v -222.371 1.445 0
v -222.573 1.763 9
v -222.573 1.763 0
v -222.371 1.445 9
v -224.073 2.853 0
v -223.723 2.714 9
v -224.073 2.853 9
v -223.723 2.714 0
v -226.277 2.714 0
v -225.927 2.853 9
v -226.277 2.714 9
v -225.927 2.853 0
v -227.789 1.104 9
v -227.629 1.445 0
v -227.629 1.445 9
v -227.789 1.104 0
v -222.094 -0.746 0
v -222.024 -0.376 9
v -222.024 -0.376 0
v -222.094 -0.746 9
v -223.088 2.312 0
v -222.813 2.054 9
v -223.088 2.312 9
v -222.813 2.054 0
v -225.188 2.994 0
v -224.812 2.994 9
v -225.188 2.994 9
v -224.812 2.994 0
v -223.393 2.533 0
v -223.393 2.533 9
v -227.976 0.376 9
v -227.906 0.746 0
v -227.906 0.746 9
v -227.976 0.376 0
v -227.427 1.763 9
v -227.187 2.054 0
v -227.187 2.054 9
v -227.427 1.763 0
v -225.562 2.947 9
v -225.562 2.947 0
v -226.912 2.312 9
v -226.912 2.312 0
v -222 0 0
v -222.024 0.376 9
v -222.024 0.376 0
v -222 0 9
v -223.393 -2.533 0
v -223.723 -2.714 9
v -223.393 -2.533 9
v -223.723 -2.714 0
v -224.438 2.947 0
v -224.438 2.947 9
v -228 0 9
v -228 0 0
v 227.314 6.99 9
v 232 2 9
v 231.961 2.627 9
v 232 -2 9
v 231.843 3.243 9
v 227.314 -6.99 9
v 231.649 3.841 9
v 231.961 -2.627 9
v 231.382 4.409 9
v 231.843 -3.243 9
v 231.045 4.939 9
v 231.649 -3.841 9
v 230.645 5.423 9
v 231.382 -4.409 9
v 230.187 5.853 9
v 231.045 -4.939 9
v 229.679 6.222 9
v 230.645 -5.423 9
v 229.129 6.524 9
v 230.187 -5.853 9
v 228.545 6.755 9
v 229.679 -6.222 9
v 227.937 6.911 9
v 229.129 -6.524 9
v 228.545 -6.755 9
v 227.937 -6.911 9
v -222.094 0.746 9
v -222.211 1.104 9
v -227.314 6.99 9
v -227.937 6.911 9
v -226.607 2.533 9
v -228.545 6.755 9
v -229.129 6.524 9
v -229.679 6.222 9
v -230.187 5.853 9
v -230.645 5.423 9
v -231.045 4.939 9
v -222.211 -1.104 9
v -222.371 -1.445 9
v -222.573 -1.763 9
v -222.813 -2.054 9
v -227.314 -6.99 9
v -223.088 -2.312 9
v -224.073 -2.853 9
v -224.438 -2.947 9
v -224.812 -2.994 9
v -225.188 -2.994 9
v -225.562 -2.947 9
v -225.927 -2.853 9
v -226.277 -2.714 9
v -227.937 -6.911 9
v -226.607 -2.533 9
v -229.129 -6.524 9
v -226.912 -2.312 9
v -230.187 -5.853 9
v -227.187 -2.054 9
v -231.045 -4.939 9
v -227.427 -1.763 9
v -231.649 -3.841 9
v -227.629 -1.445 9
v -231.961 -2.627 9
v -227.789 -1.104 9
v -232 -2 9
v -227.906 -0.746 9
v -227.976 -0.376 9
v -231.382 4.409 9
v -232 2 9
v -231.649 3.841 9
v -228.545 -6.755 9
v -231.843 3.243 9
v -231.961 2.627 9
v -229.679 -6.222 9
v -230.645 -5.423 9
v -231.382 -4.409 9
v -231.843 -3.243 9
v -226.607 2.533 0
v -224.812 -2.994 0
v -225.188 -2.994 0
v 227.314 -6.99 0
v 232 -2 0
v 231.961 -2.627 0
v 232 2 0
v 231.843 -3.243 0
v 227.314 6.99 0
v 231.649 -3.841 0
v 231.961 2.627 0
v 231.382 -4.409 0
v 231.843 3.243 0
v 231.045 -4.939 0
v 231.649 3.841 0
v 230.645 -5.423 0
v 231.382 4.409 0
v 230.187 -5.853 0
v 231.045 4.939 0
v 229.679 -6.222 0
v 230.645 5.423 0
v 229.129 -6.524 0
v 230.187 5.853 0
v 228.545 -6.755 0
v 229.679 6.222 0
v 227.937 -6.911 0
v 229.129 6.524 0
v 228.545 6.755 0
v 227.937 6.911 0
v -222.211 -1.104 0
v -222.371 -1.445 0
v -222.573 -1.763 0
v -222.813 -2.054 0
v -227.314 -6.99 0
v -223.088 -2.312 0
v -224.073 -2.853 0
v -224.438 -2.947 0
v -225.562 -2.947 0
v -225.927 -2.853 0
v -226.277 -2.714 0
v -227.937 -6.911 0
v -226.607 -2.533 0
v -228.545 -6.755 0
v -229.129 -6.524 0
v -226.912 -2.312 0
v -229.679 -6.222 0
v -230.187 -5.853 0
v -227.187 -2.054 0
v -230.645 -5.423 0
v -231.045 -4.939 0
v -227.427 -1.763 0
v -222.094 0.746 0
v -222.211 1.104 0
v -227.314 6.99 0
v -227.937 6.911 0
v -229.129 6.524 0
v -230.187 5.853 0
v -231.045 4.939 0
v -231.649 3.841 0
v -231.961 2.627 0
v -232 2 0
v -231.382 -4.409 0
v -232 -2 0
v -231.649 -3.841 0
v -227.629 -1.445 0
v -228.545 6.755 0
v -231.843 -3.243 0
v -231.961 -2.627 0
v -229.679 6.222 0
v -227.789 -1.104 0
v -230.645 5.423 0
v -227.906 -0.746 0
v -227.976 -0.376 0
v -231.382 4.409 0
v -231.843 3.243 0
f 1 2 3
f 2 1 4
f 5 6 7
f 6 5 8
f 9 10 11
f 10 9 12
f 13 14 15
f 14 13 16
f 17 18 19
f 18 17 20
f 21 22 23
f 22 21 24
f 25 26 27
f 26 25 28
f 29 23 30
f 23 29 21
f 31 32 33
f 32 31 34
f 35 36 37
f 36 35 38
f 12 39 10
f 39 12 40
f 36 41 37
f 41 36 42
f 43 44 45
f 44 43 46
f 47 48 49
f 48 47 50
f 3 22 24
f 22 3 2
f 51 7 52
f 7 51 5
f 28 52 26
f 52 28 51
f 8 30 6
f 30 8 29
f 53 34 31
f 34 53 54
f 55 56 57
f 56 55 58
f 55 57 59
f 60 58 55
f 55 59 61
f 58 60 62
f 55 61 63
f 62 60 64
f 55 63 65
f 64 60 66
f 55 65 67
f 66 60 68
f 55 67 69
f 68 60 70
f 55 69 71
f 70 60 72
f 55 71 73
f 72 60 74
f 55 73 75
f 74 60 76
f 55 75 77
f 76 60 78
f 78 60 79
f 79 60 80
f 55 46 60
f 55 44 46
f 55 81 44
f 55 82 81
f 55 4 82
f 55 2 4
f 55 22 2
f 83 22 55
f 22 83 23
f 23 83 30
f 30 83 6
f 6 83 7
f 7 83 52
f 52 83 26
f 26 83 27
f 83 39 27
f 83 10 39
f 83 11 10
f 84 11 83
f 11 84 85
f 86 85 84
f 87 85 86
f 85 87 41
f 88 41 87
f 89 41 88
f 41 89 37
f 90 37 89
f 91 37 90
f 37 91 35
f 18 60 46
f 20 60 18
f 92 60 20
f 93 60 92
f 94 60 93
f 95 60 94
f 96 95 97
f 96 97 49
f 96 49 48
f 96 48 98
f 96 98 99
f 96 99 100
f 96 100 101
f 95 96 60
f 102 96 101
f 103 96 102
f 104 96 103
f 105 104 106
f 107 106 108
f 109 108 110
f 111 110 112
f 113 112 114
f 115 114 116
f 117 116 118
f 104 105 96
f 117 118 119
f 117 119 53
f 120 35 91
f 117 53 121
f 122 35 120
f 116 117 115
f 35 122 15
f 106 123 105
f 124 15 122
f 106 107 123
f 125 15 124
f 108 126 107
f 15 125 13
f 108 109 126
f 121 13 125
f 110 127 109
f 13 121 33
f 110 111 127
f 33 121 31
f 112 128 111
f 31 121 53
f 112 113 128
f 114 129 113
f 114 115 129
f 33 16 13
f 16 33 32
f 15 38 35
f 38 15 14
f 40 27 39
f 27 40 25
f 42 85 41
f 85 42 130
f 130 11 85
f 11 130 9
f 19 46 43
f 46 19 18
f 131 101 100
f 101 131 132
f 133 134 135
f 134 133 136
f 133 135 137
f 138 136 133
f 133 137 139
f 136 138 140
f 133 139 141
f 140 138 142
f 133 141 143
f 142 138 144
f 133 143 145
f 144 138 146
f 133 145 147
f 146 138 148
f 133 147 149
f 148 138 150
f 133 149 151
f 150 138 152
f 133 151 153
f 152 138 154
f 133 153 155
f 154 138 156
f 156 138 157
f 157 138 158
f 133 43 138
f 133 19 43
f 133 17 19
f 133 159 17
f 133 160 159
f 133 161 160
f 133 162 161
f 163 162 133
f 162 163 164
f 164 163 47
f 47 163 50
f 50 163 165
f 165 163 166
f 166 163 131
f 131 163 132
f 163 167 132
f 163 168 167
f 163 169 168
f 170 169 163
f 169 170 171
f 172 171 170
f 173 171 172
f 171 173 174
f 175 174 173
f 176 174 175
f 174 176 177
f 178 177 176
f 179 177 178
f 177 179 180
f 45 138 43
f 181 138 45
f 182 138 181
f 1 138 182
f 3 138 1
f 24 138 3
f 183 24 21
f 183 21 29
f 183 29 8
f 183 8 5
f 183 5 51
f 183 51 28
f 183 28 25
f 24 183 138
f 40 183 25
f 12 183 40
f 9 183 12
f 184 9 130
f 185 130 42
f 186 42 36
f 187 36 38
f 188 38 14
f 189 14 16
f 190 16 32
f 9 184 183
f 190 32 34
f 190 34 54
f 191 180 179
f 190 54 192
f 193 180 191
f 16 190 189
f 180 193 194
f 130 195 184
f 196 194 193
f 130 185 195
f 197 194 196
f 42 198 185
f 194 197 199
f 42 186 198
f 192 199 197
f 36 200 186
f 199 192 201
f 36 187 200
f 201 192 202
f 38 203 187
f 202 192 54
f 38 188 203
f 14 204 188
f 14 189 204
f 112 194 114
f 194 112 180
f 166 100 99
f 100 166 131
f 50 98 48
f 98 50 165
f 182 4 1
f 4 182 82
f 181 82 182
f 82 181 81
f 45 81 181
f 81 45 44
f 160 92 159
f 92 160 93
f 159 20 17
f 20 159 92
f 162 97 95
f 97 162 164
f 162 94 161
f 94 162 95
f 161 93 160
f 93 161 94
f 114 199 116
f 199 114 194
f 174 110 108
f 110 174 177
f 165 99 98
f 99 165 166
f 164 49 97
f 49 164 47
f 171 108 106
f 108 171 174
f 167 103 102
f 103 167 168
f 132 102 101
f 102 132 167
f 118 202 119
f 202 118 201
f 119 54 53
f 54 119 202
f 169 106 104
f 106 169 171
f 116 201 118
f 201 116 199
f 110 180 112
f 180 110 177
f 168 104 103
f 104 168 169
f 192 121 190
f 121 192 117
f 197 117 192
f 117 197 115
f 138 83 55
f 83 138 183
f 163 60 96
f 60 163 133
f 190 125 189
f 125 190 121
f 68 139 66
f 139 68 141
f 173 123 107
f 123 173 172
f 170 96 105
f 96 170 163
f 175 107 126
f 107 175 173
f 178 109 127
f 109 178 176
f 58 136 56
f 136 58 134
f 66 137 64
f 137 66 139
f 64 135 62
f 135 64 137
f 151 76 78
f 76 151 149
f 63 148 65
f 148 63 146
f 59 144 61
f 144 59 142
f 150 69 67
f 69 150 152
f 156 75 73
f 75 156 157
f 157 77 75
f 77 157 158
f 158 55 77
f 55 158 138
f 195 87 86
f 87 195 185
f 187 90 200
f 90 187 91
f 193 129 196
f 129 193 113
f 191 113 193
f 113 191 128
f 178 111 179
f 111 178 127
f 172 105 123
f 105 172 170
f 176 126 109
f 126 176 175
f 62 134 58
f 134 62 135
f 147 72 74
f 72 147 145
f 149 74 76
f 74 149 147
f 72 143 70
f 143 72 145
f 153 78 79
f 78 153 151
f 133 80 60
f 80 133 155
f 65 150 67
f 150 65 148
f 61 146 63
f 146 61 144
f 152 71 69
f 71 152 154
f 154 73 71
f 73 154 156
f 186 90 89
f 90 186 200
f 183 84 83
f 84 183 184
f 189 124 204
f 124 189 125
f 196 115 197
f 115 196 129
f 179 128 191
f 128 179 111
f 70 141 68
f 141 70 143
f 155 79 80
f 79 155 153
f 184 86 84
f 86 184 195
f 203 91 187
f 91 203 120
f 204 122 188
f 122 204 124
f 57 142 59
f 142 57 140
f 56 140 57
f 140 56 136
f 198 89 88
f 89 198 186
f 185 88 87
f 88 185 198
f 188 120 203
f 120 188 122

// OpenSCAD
$fn = 50;


difference() {
	union() {
		hull() {
			translate(v = [-227.0000000000, 2.0000000000, 0]) {
				cylinder(h = 9, r = 5);
			}
			translate(v = [227.0000000000, 2.0000000000, 0]) {
				cylinder(h = 9, r = 5);
			}
			translate(v = [-227.0000000000, -2.0000000000, 0]) {
				cylinder(h = 9, r = 5);
			}
			translate(v = [227.0000000000, -2.0000000000, 0]) {
				cylinder(h = 9, r = 5);
			}
		}
	}
	union() {
		translate(v = [-225.0000000000, 0.0000000000, 0]) {
			cylinder(h = 9, r = 3.0000000000);
		}
		translate(v = [-225.0000000000, 0.0000000000, 0]) {
			cylinder(h = 9, r = 1.5000000000);
		}
		translate(v = [-225.0000000000, 0.0000000000, 0]) {
			cylinder(h = 9, r = 1.5000000000);
		}
		translate(v = [-225.0000000000, 0.0000000000, 0]) {
			cylinder(h = 9, r = 1.5000000000);
		}
	}
}
